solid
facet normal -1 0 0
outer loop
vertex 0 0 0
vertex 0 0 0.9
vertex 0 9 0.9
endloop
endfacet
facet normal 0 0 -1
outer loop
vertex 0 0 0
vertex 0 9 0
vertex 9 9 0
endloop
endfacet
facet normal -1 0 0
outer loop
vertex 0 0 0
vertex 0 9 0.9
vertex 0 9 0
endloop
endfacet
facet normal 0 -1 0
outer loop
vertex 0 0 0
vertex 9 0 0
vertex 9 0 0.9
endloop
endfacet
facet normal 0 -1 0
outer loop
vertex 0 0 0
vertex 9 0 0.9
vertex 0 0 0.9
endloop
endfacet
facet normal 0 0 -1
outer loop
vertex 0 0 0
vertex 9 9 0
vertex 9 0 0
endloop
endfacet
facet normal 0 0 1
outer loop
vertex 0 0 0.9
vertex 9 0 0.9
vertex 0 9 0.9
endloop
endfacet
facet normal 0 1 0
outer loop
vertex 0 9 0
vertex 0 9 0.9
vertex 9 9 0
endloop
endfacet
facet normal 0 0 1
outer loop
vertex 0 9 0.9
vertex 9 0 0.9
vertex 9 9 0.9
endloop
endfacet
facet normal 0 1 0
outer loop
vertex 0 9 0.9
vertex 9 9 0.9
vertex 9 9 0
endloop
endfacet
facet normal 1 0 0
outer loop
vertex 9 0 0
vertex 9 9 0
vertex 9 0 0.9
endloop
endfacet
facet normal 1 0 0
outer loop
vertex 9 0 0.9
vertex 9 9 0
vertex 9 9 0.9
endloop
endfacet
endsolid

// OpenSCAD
/* Warning, this is a very basic generator with a lot of approximation 
input data : [QFN, R4X, 9x9x0.9mm, 64, , D, C04-00213D]
generated by com.zoubworld.electronics.cad.model3d.Basic
Date : Sun Feb 15 10:50:48 CET 2026
*/

//body
color("black")
translate([0,0,0])
cube([9.0,9.0,0.9], center=false);
